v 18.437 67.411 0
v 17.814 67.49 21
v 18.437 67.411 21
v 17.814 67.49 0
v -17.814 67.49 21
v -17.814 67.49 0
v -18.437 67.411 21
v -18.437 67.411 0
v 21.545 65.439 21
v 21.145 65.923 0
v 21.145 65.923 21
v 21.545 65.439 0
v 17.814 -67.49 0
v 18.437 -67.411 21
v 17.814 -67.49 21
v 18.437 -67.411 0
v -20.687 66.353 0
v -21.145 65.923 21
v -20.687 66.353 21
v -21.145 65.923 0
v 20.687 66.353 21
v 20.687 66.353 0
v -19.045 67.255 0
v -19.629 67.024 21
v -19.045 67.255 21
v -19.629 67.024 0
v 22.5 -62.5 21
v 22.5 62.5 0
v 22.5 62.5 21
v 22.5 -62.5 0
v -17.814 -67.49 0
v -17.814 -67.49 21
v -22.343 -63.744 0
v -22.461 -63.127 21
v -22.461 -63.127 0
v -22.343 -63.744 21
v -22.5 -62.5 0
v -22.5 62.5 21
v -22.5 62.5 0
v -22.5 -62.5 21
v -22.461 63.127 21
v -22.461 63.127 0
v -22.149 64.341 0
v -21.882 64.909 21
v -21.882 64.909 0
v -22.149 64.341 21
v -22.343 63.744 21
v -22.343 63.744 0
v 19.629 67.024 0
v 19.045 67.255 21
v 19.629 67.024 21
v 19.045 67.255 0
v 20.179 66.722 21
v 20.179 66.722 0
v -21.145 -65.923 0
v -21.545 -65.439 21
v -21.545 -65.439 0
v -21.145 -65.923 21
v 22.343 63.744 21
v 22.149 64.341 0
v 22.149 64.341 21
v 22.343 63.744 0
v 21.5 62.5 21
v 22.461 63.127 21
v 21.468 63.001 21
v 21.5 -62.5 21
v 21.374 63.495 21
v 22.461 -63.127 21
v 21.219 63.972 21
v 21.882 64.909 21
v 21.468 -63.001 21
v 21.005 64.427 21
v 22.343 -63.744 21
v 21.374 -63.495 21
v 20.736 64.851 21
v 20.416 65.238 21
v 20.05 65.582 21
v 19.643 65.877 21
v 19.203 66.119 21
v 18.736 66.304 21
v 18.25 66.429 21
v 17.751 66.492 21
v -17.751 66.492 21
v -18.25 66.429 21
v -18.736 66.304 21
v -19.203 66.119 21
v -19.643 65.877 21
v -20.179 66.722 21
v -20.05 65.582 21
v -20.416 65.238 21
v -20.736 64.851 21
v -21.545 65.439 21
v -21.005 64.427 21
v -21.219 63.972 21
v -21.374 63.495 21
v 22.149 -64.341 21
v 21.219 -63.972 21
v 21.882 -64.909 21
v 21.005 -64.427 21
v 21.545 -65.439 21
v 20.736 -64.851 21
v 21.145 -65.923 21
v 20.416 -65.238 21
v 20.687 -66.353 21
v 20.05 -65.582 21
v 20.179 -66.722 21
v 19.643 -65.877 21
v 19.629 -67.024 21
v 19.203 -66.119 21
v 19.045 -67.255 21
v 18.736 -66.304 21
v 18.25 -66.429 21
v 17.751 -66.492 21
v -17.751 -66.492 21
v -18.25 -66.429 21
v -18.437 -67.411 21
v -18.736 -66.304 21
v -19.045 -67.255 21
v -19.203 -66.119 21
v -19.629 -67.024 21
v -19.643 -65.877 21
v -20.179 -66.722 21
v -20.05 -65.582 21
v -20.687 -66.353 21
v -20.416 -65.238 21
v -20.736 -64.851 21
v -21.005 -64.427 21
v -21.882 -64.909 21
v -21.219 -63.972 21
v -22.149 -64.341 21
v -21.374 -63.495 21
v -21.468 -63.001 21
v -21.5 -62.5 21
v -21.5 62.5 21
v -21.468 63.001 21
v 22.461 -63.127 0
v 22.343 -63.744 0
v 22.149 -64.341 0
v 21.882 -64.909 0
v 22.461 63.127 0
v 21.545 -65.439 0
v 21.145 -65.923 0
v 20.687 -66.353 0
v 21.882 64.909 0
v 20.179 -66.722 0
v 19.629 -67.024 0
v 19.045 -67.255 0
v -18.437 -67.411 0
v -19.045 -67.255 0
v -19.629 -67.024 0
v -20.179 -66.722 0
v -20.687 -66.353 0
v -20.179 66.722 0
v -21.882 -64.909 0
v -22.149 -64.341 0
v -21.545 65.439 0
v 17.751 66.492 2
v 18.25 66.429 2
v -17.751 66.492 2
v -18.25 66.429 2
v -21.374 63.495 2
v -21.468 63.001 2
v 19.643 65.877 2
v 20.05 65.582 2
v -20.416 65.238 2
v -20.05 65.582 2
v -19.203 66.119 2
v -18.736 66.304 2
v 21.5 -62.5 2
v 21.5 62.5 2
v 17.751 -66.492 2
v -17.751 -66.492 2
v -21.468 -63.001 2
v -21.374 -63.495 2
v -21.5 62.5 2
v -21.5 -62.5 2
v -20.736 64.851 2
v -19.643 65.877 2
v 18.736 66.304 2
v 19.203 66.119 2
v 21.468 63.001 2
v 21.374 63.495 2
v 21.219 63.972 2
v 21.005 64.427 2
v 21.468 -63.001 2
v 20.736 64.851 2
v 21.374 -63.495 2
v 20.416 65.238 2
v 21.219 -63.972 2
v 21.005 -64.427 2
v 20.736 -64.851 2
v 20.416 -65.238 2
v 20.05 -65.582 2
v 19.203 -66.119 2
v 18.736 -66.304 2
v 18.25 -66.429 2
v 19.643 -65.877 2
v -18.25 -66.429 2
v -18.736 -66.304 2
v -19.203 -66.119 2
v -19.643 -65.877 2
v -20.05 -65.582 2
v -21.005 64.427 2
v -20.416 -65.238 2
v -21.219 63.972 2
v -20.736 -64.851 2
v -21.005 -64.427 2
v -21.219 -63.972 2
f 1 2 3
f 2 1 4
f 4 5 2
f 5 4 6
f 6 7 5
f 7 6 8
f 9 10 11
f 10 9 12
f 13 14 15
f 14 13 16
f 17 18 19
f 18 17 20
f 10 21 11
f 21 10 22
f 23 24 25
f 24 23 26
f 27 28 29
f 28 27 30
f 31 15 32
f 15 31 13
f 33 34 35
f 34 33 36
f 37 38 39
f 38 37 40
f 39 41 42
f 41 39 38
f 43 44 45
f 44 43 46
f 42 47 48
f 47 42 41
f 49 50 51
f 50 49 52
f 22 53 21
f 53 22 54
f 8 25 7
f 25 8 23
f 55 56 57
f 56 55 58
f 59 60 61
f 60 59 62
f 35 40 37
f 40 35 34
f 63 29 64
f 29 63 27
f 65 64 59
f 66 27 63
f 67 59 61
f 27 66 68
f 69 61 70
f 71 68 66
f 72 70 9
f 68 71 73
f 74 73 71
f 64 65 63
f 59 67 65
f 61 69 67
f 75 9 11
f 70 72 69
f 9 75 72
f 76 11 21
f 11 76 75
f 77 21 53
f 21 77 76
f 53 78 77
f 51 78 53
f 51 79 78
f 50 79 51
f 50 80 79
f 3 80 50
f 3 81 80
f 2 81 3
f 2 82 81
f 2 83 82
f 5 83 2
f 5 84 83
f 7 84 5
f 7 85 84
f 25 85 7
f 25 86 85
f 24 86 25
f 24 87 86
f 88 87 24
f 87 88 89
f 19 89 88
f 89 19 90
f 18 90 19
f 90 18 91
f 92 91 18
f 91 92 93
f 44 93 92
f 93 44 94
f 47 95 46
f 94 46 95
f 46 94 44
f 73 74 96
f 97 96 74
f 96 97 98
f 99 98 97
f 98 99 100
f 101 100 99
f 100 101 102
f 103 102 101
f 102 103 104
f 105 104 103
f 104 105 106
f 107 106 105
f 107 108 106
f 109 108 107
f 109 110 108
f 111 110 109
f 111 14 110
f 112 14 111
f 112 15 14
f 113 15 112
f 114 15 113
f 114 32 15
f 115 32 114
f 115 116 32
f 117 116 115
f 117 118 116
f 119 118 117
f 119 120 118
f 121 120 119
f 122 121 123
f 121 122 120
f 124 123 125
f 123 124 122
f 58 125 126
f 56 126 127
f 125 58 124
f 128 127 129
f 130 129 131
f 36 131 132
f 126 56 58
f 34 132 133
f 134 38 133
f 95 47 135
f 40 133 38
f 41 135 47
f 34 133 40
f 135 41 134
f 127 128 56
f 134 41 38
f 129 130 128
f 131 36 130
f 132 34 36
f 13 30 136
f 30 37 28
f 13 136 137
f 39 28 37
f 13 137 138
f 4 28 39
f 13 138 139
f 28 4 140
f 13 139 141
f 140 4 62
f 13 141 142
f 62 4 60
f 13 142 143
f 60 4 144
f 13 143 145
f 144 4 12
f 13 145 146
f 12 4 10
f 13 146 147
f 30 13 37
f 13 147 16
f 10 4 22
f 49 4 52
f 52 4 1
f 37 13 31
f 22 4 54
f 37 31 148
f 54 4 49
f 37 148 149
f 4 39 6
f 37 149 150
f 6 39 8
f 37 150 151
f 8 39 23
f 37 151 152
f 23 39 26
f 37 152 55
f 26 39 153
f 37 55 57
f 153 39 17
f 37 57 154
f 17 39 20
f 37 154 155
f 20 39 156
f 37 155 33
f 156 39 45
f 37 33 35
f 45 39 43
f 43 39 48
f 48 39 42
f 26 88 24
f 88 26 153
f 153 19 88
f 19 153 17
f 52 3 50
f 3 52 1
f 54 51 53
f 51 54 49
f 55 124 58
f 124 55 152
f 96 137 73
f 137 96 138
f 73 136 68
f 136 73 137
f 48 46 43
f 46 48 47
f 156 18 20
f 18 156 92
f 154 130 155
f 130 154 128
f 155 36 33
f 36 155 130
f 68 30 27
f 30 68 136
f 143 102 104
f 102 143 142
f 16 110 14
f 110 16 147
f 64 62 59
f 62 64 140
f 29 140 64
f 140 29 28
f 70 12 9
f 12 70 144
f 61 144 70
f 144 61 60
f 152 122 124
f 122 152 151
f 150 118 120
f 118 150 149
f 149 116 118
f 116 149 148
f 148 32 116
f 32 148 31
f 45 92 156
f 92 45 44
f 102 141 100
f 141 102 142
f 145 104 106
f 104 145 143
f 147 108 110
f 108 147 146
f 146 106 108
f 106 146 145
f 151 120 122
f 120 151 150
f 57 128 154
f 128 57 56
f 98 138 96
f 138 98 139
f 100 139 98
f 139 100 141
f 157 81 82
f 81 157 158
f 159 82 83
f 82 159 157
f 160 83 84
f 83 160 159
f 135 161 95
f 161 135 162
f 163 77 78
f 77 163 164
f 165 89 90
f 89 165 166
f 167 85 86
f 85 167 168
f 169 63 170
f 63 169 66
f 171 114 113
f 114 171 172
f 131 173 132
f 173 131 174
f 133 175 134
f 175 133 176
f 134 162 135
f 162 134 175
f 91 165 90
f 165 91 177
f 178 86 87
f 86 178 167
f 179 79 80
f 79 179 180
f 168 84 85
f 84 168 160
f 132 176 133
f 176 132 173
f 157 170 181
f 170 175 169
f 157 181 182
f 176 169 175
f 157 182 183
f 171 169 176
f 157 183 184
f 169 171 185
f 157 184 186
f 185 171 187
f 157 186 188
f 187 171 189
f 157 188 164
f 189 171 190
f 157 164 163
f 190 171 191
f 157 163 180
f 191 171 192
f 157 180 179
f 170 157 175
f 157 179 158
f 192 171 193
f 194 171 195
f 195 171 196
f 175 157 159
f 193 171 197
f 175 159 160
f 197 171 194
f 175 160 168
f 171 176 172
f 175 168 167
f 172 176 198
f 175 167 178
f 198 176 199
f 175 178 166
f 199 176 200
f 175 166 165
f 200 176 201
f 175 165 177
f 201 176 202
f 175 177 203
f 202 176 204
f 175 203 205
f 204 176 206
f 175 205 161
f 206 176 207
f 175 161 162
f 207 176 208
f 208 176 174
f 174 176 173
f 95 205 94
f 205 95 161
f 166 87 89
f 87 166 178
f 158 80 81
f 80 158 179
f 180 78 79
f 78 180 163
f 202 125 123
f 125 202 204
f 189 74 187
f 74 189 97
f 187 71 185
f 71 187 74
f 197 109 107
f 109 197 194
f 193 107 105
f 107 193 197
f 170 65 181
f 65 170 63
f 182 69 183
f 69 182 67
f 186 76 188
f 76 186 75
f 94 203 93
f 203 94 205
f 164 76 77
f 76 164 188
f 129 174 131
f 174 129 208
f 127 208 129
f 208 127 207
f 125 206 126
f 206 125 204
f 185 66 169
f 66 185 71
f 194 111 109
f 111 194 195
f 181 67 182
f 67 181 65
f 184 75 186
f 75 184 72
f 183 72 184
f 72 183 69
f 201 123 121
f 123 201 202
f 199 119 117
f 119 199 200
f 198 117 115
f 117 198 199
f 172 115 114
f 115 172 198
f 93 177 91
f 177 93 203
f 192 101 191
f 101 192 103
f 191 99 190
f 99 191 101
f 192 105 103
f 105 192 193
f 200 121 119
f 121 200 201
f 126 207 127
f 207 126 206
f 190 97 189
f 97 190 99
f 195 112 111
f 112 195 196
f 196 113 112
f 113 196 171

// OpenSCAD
$fn = 50;


difference() {
	union() {
		hull() {
			translate(v = [-17.5000000000, 62.5000000000, 0]) {
				cylinder(h = 21, r = 5);
			}
			translate(v = [17.5000000000, 62.5000000000, 0]) {
				cylinder(h = 21, r = 5);
			}
			translate(v = [-17.5000000000, -62.5000000000, 0]) {
				cylinder(h = 21, r = 5);
			}
			translate(v = [17.5000000000, -62.5000000000, 0]) {
				cylinder(h = 21, r = 5);
			}
		}
	}
	union() {
		translate(v = [0, 0, 2]) {
			hull() {
				translate(v = [-17.5000000000, 62.5000000000, 0]) {
					cylinder(h = 19, r = 4);
				}
				translate(v = [17.5000000000, 62.5000000000, 0]) {
					cylinder(h = 19, r = 4);
				}
				translate(v = [-17.5000000000, -62.5000000000, 0]) {
					cylinder(h = 19, r = 4);
				}
				translate(v = [17.5000000000, -62.5000000000, 0]) {
					cylinder(h = 19, r = 4);
				}
			}
		}
	}
}
